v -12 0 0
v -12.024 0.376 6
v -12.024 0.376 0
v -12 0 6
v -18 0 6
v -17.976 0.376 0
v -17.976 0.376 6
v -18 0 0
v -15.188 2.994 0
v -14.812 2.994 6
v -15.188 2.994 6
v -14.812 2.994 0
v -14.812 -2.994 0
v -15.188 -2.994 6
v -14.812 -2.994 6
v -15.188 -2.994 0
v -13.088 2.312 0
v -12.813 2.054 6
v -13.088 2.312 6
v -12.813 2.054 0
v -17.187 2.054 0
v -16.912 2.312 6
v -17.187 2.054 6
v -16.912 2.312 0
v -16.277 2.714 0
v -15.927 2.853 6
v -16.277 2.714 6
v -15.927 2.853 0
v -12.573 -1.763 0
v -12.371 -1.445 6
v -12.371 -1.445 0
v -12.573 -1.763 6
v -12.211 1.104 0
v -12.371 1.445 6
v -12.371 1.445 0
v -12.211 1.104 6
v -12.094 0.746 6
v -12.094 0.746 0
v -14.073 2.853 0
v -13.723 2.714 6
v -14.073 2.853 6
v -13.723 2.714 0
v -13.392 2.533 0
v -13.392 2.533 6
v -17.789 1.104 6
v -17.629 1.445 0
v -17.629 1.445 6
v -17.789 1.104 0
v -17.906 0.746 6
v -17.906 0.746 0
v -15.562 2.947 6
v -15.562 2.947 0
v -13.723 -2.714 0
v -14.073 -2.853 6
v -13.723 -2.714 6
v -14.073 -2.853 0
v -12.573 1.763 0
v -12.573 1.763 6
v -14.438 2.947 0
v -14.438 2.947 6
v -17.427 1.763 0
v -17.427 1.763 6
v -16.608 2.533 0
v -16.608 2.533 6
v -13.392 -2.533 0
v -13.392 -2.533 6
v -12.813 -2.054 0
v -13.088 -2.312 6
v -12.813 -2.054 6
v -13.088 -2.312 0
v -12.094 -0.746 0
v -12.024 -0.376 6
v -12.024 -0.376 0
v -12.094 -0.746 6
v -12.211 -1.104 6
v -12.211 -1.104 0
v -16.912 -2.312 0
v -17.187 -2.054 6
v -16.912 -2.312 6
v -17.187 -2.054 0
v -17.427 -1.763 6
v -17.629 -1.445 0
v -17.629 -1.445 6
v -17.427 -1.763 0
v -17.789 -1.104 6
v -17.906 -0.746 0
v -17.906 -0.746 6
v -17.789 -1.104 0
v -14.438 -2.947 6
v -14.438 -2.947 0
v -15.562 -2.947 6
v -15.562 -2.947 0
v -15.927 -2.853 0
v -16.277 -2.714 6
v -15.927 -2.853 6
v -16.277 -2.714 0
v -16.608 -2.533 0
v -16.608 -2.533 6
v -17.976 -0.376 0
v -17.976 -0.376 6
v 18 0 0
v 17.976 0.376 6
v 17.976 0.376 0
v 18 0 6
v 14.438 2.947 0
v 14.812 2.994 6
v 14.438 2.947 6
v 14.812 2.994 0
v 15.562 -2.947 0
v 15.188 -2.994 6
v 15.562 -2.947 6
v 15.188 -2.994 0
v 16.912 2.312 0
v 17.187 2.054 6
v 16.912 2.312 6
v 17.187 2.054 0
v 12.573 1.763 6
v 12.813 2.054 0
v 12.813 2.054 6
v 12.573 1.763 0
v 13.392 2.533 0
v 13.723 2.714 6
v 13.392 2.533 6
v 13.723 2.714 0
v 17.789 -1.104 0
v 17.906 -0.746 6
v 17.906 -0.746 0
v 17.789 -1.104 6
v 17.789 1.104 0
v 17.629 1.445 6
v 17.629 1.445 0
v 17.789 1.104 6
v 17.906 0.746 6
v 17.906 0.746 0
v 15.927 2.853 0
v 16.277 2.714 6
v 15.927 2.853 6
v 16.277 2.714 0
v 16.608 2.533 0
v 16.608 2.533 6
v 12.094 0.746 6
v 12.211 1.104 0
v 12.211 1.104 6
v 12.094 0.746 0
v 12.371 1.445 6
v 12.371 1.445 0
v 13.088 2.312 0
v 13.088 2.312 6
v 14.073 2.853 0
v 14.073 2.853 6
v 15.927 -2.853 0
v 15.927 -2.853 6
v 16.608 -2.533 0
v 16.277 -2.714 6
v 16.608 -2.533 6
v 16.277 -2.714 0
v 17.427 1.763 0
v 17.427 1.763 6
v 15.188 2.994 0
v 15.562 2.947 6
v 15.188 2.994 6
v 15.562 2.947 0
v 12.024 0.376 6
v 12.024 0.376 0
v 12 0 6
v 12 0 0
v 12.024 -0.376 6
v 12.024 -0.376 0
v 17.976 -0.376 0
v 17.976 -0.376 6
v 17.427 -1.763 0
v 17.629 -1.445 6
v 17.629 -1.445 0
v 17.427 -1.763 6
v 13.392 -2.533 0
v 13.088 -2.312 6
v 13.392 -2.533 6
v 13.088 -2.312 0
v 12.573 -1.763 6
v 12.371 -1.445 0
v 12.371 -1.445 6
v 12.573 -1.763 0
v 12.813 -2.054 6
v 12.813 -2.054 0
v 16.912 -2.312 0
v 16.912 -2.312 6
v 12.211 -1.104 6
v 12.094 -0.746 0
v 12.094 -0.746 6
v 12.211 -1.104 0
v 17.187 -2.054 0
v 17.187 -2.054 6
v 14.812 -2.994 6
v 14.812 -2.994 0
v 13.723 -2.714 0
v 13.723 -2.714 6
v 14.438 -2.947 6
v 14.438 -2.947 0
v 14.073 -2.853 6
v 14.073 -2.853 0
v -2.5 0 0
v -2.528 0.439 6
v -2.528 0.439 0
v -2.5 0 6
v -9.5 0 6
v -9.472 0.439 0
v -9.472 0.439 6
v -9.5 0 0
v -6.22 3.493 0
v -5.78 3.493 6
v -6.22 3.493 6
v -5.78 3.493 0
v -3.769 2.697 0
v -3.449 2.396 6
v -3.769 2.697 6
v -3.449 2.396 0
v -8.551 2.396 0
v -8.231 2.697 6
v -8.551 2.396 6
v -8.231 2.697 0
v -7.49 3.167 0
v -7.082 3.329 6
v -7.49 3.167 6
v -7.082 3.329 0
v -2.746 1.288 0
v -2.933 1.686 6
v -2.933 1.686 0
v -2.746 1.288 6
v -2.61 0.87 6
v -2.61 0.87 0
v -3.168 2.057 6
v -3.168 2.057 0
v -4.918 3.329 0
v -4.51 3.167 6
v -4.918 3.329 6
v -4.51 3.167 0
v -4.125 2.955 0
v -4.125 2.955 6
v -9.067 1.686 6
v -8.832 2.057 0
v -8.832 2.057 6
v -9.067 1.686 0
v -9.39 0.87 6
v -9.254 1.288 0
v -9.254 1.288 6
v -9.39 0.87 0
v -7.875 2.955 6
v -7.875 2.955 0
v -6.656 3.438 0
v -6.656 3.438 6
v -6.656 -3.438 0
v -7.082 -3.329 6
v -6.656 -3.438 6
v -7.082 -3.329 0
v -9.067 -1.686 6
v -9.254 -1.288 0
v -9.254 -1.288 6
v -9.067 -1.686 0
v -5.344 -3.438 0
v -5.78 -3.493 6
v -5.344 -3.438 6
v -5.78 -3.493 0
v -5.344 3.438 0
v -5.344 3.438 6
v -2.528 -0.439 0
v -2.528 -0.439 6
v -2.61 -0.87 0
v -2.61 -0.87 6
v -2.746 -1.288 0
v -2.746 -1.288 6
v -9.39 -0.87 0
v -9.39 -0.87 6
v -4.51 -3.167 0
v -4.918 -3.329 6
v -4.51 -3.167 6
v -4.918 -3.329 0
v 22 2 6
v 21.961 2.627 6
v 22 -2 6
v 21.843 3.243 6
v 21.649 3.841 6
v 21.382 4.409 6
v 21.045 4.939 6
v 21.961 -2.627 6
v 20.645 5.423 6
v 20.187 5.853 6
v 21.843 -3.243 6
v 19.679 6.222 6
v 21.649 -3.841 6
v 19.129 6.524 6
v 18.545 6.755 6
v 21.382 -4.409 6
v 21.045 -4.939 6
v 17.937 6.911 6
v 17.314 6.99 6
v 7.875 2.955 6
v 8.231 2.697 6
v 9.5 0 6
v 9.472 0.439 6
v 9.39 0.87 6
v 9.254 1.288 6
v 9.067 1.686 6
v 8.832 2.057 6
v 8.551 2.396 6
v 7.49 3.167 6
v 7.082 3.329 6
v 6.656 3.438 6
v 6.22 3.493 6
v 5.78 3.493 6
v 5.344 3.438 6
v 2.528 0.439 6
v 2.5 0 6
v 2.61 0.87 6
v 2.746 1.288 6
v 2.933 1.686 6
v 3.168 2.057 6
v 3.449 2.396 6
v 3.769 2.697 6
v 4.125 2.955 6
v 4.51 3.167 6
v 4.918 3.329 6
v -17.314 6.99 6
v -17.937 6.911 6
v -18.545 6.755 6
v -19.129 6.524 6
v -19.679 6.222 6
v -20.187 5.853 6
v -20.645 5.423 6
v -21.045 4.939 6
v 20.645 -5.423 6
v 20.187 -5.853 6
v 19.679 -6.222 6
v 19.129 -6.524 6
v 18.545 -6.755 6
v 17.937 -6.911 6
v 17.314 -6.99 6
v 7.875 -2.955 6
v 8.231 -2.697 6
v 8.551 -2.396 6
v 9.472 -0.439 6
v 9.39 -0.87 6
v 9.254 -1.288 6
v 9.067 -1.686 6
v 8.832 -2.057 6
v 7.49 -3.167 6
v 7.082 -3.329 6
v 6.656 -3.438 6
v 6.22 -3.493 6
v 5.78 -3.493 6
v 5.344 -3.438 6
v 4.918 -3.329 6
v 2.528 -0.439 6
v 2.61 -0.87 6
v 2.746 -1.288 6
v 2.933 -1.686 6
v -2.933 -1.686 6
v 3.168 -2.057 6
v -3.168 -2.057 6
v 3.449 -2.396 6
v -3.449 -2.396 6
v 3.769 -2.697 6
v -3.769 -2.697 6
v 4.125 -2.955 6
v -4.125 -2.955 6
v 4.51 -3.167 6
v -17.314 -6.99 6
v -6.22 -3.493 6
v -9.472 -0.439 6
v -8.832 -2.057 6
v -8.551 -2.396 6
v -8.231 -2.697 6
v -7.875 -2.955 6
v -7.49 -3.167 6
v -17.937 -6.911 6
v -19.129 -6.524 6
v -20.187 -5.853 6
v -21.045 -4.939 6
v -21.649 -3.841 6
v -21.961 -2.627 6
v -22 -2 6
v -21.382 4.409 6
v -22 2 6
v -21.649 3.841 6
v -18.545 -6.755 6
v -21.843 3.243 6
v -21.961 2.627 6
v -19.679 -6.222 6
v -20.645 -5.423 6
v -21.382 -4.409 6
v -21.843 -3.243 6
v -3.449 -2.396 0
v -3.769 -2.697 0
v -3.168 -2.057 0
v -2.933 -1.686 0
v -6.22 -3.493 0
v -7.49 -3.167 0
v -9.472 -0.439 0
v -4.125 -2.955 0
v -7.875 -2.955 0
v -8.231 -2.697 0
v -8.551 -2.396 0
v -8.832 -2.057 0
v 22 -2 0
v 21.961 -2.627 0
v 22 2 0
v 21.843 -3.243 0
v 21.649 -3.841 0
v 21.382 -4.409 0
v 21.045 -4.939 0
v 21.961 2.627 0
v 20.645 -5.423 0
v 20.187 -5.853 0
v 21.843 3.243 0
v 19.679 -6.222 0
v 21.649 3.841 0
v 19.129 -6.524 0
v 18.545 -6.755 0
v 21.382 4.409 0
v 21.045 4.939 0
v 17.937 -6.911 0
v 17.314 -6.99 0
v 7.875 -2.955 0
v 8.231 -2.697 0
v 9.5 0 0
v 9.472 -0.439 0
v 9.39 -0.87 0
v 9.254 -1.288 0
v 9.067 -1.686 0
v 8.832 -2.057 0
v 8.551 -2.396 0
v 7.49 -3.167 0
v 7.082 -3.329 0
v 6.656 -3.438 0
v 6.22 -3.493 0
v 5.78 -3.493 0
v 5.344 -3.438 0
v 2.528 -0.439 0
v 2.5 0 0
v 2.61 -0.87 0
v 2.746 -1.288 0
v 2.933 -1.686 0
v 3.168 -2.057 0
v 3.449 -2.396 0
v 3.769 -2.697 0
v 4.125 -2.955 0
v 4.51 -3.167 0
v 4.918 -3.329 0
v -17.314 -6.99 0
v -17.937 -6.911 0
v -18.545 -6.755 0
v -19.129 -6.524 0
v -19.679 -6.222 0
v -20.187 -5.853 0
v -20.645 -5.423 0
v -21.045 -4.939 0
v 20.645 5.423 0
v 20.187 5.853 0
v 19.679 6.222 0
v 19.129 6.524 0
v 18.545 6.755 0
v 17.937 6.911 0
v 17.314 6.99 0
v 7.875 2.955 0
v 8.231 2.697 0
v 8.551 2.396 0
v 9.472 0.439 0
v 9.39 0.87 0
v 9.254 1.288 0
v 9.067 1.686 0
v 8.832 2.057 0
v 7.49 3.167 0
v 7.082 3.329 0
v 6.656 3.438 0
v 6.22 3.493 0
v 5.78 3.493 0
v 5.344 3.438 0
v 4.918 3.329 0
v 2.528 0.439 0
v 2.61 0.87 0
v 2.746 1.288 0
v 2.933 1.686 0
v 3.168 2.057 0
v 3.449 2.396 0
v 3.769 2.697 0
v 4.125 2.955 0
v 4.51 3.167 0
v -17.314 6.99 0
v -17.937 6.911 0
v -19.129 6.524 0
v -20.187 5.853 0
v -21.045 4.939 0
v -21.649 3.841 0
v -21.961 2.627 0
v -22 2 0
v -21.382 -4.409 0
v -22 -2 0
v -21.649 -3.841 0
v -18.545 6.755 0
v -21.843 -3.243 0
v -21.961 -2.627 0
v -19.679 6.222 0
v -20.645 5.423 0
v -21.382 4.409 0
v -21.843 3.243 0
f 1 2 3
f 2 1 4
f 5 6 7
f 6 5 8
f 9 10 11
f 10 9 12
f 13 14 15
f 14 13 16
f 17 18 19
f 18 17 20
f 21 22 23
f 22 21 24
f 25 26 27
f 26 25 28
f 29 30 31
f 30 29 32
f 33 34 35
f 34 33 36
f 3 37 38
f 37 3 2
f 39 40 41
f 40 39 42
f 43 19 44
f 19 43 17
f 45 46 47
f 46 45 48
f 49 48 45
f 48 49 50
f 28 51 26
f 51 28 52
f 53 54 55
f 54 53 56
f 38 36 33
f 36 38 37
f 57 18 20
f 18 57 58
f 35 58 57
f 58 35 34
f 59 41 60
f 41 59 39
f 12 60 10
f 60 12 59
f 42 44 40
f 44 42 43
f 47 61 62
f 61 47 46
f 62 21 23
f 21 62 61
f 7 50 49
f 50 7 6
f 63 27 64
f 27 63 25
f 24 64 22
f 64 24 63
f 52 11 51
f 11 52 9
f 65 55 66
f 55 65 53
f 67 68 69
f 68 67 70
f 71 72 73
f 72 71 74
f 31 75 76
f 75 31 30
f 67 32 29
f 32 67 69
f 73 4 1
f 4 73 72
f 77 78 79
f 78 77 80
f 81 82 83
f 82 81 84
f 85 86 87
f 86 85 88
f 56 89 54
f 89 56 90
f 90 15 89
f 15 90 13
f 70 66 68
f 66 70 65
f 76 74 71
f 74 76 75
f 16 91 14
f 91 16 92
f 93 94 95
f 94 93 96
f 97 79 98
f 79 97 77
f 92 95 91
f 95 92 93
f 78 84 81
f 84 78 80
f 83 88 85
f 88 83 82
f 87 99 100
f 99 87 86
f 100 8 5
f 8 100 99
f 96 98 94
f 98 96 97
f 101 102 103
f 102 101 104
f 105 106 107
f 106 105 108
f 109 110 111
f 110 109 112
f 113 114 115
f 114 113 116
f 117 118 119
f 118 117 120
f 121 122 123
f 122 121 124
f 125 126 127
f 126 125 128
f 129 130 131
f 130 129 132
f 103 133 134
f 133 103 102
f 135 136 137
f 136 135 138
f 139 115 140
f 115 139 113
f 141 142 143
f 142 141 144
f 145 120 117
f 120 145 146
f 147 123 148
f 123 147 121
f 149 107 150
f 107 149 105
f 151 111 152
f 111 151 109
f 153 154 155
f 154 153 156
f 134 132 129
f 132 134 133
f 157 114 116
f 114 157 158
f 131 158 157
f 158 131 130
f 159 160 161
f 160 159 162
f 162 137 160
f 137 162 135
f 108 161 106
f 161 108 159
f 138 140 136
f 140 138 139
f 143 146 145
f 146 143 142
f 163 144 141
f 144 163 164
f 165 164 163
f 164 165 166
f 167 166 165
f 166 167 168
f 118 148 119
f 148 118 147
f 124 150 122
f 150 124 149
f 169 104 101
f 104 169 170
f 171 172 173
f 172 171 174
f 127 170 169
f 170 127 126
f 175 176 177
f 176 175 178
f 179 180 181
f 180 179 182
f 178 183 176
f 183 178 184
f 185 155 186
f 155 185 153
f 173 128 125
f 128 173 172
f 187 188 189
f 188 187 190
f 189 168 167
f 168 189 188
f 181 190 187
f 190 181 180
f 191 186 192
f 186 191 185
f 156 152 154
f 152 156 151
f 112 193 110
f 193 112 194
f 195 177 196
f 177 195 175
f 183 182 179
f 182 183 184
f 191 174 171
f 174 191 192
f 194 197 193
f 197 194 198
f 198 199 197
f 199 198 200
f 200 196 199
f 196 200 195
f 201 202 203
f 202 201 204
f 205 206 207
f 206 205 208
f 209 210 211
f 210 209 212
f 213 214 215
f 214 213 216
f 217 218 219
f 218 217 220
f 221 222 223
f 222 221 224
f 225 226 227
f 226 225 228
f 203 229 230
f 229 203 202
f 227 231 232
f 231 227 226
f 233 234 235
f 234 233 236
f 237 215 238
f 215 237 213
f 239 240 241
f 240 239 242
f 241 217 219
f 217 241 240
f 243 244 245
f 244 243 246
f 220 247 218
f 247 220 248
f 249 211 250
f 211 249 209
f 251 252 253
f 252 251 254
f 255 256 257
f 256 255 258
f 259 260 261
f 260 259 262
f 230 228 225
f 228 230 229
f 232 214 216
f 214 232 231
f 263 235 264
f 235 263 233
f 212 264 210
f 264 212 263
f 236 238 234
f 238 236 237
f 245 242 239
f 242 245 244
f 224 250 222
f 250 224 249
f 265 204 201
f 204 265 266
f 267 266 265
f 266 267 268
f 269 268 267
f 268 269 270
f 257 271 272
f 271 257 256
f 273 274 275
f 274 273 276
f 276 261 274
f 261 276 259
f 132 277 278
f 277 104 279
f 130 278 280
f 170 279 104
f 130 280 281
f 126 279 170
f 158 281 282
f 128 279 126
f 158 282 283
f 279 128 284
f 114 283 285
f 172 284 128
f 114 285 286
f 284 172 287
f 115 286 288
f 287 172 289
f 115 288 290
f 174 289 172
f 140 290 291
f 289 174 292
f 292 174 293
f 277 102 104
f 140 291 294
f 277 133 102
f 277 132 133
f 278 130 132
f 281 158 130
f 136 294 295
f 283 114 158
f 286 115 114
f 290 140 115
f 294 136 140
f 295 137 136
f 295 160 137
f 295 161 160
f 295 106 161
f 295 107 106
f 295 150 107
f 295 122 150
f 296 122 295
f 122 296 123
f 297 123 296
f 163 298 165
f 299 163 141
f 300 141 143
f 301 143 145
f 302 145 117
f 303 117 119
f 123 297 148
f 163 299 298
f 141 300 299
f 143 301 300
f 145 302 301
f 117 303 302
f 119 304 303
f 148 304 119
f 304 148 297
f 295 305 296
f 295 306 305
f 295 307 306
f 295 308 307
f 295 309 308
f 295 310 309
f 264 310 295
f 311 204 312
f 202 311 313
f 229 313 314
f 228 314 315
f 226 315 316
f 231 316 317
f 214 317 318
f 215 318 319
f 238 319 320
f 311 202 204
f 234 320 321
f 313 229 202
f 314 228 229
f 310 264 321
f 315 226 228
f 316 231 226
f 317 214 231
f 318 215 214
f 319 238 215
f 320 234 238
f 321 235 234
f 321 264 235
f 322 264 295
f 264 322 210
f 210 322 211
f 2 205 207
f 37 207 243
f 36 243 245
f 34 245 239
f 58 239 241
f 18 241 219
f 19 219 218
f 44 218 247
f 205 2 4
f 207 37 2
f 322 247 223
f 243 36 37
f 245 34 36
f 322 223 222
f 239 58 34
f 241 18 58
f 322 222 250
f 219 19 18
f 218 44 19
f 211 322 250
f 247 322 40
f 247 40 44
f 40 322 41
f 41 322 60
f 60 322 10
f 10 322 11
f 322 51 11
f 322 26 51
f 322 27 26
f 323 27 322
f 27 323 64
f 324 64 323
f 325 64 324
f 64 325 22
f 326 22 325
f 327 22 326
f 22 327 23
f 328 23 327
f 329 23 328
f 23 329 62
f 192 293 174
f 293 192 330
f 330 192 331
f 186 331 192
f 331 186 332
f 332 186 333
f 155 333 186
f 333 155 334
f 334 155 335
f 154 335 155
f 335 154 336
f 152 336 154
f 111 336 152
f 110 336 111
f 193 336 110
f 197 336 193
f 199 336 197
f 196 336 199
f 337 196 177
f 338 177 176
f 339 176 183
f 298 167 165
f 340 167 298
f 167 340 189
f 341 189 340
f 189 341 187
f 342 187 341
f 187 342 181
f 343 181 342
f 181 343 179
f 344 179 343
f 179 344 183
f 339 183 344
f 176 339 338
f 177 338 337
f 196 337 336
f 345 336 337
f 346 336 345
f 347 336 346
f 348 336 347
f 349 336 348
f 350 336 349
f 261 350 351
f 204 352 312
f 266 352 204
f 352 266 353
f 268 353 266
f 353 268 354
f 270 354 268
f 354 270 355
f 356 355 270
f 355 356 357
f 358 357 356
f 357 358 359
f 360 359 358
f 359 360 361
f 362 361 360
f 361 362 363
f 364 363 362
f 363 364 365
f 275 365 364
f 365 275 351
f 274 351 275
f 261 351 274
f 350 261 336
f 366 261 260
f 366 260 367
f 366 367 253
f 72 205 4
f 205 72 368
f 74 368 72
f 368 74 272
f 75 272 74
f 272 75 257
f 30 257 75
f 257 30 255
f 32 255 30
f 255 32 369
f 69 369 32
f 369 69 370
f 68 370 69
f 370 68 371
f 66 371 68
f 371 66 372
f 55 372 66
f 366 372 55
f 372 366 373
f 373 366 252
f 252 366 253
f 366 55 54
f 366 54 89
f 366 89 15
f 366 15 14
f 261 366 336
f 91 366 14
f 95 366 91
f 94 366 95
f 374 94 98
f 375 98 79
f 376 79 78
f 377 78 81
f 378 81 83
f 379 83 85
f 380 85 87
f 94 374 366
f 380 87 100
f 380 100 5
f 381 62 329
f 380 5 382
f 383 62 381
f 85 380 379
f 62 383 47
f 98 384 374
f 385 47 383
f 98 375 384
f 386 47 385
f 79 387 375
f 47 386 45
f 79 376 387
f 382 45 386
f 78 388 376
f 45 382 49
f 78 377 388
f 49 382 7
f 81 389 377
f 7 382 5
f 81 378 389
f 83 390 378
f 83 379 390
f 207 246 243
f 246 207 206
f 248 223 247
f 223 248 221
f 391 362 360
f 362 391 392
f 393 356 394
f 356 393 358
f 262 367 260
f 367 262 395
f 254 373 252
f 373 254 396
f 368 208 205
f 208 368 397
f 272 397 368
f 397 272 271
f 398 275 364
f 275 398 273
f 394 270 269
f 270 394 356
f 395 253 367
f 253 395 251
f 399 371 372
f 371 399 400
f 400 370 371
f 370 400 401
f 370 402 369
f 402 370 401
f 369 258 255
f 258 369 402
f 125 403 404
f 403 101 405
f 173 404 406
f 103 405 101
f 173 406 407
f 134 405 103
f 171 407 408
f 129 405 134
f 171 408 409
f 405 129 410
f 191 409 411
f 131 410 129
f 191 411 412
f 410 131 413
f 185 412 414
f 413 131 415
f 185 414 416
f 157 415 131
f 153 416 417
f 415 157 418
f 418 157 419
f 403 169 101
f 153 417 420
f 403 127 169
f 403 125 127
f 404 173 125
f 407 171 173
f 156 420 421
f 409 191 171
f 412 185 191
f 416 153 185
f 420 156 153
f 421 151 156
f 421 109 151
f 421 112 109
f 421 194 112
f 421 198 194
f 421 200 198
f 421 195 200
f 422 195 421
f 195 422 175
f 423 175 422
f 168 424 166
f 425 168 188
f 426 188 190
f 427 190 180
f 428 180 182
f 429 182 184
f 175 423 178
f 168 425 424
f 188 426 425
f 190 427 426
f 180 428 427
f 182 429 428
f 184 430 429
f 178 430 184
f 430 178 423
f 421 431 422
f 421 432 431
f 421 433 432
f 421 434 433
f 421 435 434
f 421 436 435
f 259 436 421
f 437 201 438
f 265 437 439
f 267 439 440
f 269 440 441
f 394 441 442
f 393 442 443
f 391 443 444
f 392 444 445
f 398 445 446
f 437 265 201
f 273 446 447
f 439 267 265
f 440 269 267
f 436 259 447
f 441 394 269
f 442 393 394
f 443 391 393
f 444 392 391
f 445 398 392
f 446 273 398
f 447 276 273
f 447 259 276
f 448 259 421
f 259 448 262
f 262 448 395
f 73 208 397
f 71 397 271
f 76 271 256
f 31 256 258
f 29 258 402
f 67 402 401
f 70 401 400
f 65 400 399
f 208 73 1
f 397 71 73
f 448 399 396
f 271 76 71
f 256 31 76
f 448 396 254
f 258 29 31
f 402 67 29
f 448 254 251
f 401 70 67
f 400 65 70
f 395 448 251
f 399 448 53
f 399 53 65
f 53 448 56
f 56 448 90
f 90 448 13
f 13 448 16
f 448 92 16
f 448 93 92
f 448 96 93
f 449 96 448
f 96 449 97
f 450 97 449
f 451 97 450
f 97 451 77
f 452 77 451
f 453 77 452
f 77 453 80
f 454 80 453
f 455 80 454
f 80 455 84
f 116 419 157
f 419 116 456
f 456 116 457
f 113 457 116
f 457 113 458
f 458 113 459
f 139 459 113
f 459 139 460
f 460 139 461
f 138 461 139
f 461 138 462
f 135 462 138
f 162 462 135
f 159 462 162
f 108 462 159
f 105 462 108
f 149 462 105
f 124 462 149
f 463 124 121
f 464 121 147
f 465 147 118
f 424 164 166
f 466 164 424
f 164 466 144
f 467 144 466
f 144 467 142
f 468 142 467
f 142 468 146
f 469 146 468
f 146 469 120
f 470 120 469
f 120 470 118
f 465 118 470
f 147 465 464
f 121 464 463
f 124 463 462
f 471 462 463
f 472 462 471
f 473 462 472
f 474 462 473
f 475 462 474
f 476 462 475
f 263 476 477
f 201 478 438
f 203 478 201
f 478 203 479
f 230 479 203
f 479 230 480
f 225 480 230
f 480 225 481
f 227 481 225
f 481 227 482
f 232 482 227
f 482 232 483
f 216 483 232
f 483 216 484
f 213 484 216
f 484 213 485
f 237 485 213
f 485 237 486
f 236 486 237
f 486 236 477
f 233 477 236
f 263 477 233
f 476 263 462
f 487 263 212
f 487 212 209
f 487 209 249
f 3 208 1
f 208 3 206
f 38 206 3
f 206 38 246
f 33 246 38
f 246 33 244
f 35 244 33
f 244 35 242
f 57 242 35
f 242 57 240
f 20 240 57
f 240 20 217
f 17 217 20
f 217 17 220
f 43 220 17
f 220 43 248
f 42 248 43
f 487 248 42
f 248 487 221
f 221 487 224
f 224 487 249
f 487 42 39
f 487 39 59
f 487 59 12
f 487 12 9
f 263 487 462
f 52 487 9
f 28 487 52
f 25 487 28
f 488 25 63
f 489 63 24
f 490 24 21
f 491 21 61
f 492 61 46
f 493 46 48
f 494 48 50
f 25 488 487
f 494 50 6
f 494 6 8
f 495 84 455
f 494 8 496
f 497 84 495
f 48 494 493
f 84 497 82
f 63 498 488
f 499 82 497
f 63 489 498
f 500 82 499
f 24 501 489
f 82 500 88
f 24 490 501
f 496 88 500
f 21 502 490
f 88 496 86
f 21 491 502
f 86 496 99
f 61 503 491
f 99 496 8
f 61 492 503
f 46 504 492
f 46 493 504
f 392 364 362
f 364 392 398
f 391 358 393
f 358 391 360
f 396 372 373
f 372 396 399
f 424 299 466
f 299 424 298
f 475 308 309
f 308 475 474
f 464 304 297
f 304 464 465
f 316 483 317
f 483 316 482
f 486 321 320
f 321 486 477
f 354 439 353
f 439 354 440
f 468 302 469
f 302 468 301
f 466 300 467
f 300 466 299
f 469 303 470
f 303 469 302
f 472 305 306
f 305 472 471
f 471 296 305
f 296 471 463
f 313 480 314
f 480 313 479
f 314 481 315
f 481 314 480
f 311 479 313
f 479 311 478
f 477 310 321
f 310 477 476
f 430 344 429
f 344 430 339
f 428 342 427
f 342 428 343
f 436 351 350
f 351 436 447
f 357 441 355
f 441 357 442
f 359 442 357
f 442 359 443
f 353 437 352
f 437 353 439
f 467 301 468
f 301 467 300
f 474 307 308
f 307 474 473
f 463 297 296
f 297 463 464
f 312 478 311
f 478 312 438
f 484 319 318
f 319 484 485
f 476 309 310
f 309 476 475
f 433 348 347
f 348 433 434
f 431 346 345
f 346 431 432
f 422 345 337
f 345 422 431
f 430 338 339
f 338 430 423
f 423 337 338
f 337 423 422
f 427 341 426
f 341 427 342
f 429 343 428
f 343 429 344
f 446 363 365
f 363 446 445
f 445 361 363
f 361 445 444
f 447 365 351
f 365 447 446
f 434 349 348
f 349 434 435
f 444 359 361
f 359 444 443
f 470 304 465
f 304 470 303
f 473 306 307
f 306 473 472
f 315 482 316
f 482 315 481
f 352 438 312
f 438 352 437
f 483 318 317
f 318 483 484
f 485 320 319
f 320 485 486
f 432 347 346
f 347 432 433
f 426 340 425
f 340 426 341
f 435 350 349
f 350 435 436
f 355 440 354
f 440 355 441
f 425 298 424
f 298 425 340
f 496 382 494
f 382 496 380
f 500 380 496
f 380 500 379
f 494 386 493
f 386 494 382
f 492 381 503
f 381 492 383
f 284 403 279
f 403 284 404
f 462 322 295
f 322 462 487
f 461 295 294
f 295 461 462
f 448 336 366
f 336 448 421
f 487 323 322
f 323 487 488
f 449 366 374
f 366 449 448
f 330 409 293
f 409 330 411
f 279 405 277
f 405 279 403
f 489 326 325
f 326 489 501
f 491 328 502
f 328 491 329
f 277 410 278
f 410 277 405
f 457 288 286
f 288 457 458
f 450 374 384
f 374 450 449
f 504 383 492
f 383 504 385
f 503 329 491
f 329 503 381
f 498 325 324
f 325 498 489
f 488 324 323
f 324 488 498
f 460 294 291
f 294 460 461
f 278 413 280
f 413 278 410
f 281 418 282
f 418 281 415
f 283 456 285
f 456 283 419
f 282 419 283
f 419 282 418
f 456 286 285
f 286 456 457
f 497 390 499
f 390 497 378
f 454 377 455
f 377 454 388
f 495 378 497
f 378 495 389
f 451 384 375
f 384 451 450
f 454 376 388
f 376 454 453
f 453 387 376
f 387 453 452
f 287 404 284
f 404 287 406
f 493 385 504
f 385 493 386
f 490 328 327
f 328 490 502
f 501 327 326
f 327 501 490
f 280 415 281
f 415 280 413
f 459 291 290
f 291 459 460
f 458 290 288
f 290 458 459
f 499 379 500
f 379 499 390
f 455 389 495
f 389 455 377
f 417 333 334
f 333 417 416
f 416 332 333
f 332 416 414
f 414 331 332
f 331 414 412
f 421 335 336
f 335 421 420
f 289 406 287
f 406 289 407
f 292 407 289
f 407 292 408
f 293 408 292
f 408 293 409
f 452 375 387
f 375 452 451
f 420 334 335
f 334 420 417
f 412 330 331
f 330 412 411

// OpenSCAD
$fn = 50;


difference() {
	union() {
		hull() {
			translate(v = [-17.0000000000, 2.0000000000, 0]) {
				cylinder(h = 6, r = 5);
			}
			translate(v = [17.0000000000, 2.0000000000, 0]) {
				cylinder(h = 6, r = 5);
			}
			translate(v = [-17.0000000000, -2.0000000000, 0]) {
				cylinder(h = 6, r = 5);
			}
			translate(v = [17.0000000000, -2.0000000000, 0]) {
				cylinder(h = 6, r = 5);
			}
		}
	}
	union() {
		#translate(v = [-15.0000000000, 0.0000000000, 0]) {
			cylinder(h = 6, r = 3.0000000000);
		}
		#translate(v = [15.0000000000, 0.0000000000, 0]) {
			cylinder(h = 6, r = 3.0000000000);
		}
		#translate(v = [-15.0000000000, 0.0000000000, -100.0000000000]) {
			cylinder(h = 200, r = 3.0000000000);
		}
		#translate(v = [-15.0000000000, 0.0000000000, -100.0000000000]) {
			cylinder(h = 200, r = 3.0000000000);
		}
		#translate(v = [15.0000000000, 0.0000000000, -100.0000000000]) {
			cylinder(h = 200, r = 3.0000000000);
		}
		#translate(v = [15.0000000000, 0.0000000000, -100.0000000000]) {
			cylinder(h = 200, r = 3.0000000000);
		}
		#translate(v = [-15.0000000000, 0.0000000000, 0]) {
			cylinder(h = 6, r = 1.5000000000);
		}
		#translate(v = [15.0000000000, 0.0000000000, 0]) {
			cylinder(h = 6, r = 1.5000000000);
		}
		#translate(v = [-15.0000000000, 0.0000000000, 0]) {
			cylinder(h = 6, r = 1.5000000000);
		}
		#translate(v = [15.0000000000, 0.0000000000, 0]) {
			cylinder(h = 6, r = 1.5000000000);
		}
		#translate(v = [-15.0000000000, 0.0000000000, 0]) {
			cylinder(h = 6, r = 1.5000000000);
		}
		#translate(v = [15.0000000000, 0.0000000000, 0]) {
			cylinder(h = 6, r = 1.5000000000);
		}
		#translate(v = [-6.0000000000, 0, 0]) {
			cylinder(h = 6, r = 3.5000000000);
		}
		#translate(v = [6.0000000000, 0, 0]) {
			cylinder(h = 6, r = 3.5000000000);
		}
	}
}
